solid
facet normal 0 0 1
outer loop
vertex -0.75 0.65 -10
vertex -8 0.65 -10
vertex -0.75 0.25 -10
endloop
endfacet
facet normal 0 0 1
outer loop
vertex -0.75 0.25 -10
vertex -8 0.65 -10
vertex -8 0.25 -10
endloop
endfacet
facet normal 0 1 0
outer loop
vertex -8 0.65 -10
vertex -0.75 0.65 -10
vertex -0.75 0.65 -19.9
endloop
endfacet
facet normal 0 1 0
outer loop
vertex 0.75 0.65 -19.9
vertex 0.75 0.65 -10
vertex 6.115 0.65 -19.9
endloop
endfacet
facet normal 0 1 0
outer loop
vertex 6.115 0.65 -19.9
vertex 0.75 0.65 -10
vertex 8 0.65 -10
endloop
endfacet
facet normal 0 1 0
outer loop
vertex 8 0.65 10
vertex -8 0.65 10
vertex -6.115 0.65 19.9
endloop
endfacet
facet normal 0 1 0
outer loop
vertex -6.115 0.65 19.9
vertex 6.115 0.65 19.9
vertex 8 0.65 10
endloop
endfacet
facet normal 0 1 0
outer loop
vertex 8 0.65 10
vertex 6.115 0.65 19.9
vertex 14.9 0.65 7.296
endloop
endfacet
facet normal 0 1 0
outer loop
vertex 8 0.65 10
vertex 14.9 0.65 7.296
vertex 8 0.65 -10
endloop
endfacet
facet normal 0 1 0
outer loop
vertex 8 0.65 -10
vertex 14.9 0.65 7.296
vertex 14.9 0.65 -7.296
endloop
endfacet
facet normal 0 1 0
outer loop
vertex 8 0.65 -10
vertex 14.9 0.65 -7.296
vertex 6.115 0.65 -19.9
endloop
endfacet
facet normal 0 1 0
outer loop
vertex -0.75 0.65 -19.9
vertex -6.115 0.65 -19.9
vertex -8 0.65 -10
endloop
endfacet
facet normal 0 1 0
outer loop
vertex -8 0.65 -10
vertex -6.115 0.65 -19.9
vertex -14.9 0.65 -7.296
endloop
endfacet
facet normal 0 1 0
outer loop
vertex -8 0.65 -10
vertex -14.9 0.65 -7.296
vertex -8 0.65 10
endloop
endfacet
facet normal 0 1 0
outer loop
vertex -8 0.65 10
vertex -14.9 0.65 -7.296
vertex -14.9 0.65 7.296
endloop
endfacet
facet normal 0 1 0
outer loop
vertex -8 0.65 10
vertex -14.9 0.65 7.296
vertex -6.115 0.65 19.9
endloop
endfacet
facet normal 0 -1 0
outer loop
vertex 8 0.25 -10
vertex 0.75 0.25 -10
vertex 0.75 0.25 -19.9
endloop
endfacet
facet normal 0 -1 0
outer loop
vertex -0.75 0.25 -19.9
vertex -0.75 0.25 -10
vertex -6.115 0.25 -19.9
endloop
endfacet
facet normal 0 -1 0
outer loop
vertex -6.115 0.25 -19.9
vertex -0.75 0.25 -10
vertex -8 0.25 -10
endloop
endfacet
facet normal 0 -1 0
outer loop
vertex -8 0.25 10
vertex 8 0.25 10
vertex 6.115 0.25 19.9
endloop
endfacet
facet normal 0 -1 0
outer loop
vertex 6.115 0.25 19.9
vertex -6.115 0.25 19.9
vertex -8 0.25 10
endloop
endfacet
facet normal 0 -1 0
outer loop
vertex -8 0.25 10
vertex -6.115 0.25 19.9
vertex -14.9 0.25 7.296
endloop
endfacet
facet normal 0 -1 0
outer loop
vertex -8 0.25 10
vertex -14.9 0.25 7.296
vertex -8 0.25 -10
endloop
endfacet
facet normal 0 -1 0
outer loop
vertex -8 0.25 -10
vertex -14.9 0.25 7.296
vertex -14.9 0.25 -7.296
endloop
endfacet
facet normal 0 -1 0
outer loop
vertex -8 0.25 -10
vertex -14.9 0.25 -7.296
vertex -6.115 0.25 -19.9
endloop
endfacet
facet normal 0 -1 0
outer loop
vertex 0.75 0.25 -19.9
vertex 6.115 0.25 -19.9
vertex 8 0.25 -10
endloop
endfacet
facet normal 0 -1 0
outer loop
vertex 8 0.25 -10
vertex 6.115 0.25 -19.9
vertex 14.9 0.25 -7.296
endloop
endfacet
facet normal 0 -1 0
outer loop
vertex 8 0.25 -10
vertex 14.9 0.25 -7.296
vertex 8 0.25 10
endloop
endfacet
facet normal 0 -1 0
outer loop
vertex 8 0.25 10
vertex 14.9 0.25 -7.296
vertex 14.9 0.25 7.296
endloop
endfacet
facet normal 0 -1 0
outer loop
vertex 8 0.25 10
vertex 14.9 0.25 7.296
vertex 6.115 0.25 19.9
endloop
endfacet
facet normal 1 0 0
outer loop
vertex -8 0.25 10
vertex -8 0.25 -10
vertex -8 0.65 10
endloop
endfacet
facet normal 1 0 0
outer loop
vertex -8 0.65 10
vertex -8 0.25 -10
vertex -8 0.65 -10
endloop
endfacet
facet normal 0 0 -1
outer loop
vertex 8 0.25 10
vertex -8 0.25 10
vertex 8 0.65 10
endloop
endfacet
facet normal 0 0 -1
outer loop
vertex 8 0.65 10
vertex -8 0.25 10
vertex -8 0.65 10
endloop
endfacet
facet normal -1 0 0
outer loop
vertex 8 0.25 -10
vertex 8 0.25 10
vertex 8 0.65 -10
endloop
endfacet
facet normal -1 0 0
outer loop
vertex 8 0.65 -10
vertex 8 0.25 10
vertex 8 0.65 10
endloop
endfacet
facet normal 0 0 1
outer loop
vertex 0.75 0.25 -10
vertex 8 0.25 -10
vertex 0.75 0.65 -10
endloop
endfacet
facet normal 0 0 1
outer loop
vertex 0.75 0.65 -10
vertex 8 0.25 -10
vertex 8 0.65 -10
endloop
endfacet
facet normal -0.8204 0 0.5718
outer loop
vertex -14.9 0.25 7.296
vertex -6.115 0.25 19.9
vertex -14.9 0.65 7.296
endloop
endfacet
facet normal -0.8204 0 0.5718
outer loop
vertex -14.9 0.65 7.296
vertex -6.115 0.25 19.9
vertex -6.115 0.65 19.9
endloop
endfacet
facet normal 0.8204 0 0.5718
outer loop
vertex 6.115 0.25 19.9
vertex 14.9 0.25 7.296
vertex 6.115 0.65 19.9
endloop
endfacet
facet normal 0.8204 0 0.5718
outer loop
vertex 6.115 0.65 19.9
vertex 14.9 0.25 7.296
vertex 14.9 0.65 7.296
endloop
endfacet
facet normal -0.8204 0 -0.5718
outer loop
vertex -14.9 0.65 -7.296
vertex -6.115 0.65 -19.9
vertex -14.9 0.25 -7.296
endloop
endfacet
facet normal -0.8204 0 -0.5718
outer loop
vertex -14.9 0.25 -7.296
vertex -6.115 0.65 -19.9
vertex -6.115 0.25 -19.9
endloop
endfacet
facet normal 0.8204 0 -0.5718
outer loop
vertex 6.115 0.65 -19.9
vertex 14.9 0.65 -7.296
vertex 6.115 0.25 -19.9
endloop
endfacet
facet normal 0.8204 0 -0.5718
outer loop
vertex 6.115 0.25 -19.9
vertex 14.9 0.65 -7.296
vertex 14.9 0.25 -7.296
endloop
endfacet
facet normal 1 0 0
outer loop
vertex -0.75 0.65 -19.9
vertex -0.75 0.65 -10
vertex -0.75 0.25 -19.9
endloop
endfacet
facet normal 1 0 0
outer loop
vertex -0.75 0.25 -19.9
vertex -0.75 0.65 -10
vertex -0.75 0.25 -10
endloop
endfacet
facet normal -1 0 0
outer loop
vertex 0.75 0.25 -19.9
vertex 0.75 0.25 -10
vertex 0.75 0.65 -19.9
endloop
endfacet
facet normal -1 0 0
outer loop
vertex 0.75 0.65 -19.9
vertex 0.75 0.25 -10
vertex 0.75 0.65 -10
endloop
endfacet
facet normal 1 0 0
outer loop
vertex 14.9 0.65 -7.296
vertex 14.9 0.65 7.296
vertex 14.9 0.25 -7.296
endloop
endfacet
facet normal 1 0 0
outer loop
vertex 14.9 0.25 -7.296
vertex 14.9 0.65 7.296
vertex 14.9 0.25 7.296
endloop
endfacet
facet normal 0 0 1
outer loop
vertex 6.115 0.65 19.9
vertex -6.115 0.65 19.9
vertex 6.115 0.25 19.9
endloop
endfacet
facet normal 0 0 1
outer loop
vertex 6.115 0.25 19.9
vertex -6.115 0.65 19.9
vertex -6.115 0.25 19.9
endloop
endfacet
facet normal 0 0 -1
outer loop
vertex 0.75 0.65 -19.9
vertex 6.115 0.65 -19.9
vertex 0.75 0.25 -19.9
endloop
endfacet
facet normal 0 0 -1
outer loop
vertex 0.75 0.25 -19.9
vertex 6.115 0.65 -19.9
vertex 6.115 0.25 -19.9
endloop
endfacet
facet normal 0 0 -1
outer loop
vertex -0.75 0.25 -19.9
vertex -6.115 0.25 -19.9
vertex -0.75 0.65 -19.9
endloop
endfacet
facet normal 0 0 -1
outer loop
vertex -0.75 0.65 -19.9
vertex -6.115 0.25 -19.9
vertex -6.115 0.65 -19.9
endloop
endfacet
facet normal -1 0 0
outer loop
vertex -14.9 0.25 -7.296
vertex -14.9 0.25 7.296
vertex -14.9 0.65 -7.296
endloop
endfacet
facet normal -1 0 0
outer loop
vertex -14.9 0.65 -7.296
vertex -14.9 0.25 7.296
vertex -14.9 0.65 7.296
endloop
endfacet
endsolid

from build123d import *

# Parameters (mm, degrees)
SKETCH1_W           = 33
SKETCH1_H           = 43
BOSS_EXTRUDE1_DEPTH = 0.65
CUT_EXTRUDE1_DEPTH  = 0.25
SKETCH3_W           = 16
SKETCH3_H           = 20
CUT_EXTRUDE2_DEPTH  = 4.125
CUT_EXTRUDE3_DEPTH  = 4.125
SKETCH5_W           = 1.5
SKETCH5_H           = 10
CUT_EXTRUDE4_DEPTH  = 10
SKETCH6_W           = 7.307736582
SKETCH6_H           = 22.967172114
SKETCH6_W_2         = 20.795730386
SKETCH6_H_2         = 8.393457445
SKETCH6_W_3         = 19.542864514
SKETCH6_H_3         = 6.295941965
SKETCH6_W_4         = 6.096070792
CUT_EXTRUDE5_DEPTH  = 5


with BuildPart() as part:
    # Sketch1 → Boss-Extrude1 (new body)
    with BuildSketch(Plane(origin=(0, 0, 0), x_dir=(1, 0, 0), z_dir=(0, 1, 0))):
        Rectangle(SKETCH1_W, SKETCH1_H)
    extrude(amount=BOSS_EXTRUDE1_DEPTH)

    # Sketch2 → Cut-Extrude1 (cut)
    with BuildSketch(Plane.XZ):
        Polygon((5, 21.5), (16.5, 21.5), (16.5, 5), (15, 5), (15, -5), (16.5, -5), (16.5, -21.5), (5, -21.5), (5, -20), (-5, -20), (-5, -21.5), (-16.5, -21.5), (-16.5, -5), (-15, -5), (-15, 5), (-16.5, 5), (-16.5, 21.5), (-5, 21.5), (-5, 20), (5, 20), align=None)
    extrude(amount=-CUT_EXTRUDE1_DEPTH, mode=Mode.SUBTRACT)

    # Sketch3 → Cut-Extrude2 (cut)
    with BuildSketch(Plane.XZ.offset(-0.25)):
        Rectangle(SKETCH3_W, SKETCH3_H)
    extrude(amount=-CUT_EXTRUDE2_DEPTH, mode=Mode.SUBTRACT)

    # Sketch4 → Cut-Extrude3 (cut)
    with BuildSketch(Plane.XZ.offset(-0.25)):
        Polygon((-5, 21.5), (-16.5, 5), (-16.5, 21.5), align=None)
        Polygon((5, 21.5), (16.5, 5), (16.5, 21.5), align=None)
        Polygon((-16.5, -5), (-5, -21.5), (-16.5, -21.5), align=None)
        Polygon((16.5, -5), (5, -21.5), (16.5, -21.5), align=None)
    extrude(amount=-CUT_EXTRUDE3_DEPTH, mode=Mode.SUBTRACT)

    # Sketch5 → Cut-Extrude4 (cut)
    with BuildSketch(Plane.XZ.offset(-0.25)):
        with Locations((0, -15)):
            Rectangle(SKETCH5_W, SKETCH5_H)
    extrude(amount=-CUT_EXTRUDE4_DEPTH, mode=Mode.SUBTRACT)

    # Sketch6 → Cut-Extrude5 (cut, symmetric)
    with BuildSketch(Plane.XZ.offset(-0.25)):
        with Locations((18.553868291, 0.304489024)):
            Rectangle(SKETCH6_W, SKETCH6_H)
        with Locations((0.125275484, 24.096728723)):
            Rectangle(SKETCH6_W_2, SKETCH6_H_2)
        with Locations((-0.501157452, -23.047970983)):
            Rectangle(SKETCH6_W_3, SKETCH6_H_3)
        with Locations((-17.948035396, 0.304489024)):
            Rectangle(SKETCH6_W_4, SKETCH6_H)
    extrude(amount=CUT_EXTRUDE5_DEPTH, both=True, mode=Mode.SUBTRACT)


solid = part.part
